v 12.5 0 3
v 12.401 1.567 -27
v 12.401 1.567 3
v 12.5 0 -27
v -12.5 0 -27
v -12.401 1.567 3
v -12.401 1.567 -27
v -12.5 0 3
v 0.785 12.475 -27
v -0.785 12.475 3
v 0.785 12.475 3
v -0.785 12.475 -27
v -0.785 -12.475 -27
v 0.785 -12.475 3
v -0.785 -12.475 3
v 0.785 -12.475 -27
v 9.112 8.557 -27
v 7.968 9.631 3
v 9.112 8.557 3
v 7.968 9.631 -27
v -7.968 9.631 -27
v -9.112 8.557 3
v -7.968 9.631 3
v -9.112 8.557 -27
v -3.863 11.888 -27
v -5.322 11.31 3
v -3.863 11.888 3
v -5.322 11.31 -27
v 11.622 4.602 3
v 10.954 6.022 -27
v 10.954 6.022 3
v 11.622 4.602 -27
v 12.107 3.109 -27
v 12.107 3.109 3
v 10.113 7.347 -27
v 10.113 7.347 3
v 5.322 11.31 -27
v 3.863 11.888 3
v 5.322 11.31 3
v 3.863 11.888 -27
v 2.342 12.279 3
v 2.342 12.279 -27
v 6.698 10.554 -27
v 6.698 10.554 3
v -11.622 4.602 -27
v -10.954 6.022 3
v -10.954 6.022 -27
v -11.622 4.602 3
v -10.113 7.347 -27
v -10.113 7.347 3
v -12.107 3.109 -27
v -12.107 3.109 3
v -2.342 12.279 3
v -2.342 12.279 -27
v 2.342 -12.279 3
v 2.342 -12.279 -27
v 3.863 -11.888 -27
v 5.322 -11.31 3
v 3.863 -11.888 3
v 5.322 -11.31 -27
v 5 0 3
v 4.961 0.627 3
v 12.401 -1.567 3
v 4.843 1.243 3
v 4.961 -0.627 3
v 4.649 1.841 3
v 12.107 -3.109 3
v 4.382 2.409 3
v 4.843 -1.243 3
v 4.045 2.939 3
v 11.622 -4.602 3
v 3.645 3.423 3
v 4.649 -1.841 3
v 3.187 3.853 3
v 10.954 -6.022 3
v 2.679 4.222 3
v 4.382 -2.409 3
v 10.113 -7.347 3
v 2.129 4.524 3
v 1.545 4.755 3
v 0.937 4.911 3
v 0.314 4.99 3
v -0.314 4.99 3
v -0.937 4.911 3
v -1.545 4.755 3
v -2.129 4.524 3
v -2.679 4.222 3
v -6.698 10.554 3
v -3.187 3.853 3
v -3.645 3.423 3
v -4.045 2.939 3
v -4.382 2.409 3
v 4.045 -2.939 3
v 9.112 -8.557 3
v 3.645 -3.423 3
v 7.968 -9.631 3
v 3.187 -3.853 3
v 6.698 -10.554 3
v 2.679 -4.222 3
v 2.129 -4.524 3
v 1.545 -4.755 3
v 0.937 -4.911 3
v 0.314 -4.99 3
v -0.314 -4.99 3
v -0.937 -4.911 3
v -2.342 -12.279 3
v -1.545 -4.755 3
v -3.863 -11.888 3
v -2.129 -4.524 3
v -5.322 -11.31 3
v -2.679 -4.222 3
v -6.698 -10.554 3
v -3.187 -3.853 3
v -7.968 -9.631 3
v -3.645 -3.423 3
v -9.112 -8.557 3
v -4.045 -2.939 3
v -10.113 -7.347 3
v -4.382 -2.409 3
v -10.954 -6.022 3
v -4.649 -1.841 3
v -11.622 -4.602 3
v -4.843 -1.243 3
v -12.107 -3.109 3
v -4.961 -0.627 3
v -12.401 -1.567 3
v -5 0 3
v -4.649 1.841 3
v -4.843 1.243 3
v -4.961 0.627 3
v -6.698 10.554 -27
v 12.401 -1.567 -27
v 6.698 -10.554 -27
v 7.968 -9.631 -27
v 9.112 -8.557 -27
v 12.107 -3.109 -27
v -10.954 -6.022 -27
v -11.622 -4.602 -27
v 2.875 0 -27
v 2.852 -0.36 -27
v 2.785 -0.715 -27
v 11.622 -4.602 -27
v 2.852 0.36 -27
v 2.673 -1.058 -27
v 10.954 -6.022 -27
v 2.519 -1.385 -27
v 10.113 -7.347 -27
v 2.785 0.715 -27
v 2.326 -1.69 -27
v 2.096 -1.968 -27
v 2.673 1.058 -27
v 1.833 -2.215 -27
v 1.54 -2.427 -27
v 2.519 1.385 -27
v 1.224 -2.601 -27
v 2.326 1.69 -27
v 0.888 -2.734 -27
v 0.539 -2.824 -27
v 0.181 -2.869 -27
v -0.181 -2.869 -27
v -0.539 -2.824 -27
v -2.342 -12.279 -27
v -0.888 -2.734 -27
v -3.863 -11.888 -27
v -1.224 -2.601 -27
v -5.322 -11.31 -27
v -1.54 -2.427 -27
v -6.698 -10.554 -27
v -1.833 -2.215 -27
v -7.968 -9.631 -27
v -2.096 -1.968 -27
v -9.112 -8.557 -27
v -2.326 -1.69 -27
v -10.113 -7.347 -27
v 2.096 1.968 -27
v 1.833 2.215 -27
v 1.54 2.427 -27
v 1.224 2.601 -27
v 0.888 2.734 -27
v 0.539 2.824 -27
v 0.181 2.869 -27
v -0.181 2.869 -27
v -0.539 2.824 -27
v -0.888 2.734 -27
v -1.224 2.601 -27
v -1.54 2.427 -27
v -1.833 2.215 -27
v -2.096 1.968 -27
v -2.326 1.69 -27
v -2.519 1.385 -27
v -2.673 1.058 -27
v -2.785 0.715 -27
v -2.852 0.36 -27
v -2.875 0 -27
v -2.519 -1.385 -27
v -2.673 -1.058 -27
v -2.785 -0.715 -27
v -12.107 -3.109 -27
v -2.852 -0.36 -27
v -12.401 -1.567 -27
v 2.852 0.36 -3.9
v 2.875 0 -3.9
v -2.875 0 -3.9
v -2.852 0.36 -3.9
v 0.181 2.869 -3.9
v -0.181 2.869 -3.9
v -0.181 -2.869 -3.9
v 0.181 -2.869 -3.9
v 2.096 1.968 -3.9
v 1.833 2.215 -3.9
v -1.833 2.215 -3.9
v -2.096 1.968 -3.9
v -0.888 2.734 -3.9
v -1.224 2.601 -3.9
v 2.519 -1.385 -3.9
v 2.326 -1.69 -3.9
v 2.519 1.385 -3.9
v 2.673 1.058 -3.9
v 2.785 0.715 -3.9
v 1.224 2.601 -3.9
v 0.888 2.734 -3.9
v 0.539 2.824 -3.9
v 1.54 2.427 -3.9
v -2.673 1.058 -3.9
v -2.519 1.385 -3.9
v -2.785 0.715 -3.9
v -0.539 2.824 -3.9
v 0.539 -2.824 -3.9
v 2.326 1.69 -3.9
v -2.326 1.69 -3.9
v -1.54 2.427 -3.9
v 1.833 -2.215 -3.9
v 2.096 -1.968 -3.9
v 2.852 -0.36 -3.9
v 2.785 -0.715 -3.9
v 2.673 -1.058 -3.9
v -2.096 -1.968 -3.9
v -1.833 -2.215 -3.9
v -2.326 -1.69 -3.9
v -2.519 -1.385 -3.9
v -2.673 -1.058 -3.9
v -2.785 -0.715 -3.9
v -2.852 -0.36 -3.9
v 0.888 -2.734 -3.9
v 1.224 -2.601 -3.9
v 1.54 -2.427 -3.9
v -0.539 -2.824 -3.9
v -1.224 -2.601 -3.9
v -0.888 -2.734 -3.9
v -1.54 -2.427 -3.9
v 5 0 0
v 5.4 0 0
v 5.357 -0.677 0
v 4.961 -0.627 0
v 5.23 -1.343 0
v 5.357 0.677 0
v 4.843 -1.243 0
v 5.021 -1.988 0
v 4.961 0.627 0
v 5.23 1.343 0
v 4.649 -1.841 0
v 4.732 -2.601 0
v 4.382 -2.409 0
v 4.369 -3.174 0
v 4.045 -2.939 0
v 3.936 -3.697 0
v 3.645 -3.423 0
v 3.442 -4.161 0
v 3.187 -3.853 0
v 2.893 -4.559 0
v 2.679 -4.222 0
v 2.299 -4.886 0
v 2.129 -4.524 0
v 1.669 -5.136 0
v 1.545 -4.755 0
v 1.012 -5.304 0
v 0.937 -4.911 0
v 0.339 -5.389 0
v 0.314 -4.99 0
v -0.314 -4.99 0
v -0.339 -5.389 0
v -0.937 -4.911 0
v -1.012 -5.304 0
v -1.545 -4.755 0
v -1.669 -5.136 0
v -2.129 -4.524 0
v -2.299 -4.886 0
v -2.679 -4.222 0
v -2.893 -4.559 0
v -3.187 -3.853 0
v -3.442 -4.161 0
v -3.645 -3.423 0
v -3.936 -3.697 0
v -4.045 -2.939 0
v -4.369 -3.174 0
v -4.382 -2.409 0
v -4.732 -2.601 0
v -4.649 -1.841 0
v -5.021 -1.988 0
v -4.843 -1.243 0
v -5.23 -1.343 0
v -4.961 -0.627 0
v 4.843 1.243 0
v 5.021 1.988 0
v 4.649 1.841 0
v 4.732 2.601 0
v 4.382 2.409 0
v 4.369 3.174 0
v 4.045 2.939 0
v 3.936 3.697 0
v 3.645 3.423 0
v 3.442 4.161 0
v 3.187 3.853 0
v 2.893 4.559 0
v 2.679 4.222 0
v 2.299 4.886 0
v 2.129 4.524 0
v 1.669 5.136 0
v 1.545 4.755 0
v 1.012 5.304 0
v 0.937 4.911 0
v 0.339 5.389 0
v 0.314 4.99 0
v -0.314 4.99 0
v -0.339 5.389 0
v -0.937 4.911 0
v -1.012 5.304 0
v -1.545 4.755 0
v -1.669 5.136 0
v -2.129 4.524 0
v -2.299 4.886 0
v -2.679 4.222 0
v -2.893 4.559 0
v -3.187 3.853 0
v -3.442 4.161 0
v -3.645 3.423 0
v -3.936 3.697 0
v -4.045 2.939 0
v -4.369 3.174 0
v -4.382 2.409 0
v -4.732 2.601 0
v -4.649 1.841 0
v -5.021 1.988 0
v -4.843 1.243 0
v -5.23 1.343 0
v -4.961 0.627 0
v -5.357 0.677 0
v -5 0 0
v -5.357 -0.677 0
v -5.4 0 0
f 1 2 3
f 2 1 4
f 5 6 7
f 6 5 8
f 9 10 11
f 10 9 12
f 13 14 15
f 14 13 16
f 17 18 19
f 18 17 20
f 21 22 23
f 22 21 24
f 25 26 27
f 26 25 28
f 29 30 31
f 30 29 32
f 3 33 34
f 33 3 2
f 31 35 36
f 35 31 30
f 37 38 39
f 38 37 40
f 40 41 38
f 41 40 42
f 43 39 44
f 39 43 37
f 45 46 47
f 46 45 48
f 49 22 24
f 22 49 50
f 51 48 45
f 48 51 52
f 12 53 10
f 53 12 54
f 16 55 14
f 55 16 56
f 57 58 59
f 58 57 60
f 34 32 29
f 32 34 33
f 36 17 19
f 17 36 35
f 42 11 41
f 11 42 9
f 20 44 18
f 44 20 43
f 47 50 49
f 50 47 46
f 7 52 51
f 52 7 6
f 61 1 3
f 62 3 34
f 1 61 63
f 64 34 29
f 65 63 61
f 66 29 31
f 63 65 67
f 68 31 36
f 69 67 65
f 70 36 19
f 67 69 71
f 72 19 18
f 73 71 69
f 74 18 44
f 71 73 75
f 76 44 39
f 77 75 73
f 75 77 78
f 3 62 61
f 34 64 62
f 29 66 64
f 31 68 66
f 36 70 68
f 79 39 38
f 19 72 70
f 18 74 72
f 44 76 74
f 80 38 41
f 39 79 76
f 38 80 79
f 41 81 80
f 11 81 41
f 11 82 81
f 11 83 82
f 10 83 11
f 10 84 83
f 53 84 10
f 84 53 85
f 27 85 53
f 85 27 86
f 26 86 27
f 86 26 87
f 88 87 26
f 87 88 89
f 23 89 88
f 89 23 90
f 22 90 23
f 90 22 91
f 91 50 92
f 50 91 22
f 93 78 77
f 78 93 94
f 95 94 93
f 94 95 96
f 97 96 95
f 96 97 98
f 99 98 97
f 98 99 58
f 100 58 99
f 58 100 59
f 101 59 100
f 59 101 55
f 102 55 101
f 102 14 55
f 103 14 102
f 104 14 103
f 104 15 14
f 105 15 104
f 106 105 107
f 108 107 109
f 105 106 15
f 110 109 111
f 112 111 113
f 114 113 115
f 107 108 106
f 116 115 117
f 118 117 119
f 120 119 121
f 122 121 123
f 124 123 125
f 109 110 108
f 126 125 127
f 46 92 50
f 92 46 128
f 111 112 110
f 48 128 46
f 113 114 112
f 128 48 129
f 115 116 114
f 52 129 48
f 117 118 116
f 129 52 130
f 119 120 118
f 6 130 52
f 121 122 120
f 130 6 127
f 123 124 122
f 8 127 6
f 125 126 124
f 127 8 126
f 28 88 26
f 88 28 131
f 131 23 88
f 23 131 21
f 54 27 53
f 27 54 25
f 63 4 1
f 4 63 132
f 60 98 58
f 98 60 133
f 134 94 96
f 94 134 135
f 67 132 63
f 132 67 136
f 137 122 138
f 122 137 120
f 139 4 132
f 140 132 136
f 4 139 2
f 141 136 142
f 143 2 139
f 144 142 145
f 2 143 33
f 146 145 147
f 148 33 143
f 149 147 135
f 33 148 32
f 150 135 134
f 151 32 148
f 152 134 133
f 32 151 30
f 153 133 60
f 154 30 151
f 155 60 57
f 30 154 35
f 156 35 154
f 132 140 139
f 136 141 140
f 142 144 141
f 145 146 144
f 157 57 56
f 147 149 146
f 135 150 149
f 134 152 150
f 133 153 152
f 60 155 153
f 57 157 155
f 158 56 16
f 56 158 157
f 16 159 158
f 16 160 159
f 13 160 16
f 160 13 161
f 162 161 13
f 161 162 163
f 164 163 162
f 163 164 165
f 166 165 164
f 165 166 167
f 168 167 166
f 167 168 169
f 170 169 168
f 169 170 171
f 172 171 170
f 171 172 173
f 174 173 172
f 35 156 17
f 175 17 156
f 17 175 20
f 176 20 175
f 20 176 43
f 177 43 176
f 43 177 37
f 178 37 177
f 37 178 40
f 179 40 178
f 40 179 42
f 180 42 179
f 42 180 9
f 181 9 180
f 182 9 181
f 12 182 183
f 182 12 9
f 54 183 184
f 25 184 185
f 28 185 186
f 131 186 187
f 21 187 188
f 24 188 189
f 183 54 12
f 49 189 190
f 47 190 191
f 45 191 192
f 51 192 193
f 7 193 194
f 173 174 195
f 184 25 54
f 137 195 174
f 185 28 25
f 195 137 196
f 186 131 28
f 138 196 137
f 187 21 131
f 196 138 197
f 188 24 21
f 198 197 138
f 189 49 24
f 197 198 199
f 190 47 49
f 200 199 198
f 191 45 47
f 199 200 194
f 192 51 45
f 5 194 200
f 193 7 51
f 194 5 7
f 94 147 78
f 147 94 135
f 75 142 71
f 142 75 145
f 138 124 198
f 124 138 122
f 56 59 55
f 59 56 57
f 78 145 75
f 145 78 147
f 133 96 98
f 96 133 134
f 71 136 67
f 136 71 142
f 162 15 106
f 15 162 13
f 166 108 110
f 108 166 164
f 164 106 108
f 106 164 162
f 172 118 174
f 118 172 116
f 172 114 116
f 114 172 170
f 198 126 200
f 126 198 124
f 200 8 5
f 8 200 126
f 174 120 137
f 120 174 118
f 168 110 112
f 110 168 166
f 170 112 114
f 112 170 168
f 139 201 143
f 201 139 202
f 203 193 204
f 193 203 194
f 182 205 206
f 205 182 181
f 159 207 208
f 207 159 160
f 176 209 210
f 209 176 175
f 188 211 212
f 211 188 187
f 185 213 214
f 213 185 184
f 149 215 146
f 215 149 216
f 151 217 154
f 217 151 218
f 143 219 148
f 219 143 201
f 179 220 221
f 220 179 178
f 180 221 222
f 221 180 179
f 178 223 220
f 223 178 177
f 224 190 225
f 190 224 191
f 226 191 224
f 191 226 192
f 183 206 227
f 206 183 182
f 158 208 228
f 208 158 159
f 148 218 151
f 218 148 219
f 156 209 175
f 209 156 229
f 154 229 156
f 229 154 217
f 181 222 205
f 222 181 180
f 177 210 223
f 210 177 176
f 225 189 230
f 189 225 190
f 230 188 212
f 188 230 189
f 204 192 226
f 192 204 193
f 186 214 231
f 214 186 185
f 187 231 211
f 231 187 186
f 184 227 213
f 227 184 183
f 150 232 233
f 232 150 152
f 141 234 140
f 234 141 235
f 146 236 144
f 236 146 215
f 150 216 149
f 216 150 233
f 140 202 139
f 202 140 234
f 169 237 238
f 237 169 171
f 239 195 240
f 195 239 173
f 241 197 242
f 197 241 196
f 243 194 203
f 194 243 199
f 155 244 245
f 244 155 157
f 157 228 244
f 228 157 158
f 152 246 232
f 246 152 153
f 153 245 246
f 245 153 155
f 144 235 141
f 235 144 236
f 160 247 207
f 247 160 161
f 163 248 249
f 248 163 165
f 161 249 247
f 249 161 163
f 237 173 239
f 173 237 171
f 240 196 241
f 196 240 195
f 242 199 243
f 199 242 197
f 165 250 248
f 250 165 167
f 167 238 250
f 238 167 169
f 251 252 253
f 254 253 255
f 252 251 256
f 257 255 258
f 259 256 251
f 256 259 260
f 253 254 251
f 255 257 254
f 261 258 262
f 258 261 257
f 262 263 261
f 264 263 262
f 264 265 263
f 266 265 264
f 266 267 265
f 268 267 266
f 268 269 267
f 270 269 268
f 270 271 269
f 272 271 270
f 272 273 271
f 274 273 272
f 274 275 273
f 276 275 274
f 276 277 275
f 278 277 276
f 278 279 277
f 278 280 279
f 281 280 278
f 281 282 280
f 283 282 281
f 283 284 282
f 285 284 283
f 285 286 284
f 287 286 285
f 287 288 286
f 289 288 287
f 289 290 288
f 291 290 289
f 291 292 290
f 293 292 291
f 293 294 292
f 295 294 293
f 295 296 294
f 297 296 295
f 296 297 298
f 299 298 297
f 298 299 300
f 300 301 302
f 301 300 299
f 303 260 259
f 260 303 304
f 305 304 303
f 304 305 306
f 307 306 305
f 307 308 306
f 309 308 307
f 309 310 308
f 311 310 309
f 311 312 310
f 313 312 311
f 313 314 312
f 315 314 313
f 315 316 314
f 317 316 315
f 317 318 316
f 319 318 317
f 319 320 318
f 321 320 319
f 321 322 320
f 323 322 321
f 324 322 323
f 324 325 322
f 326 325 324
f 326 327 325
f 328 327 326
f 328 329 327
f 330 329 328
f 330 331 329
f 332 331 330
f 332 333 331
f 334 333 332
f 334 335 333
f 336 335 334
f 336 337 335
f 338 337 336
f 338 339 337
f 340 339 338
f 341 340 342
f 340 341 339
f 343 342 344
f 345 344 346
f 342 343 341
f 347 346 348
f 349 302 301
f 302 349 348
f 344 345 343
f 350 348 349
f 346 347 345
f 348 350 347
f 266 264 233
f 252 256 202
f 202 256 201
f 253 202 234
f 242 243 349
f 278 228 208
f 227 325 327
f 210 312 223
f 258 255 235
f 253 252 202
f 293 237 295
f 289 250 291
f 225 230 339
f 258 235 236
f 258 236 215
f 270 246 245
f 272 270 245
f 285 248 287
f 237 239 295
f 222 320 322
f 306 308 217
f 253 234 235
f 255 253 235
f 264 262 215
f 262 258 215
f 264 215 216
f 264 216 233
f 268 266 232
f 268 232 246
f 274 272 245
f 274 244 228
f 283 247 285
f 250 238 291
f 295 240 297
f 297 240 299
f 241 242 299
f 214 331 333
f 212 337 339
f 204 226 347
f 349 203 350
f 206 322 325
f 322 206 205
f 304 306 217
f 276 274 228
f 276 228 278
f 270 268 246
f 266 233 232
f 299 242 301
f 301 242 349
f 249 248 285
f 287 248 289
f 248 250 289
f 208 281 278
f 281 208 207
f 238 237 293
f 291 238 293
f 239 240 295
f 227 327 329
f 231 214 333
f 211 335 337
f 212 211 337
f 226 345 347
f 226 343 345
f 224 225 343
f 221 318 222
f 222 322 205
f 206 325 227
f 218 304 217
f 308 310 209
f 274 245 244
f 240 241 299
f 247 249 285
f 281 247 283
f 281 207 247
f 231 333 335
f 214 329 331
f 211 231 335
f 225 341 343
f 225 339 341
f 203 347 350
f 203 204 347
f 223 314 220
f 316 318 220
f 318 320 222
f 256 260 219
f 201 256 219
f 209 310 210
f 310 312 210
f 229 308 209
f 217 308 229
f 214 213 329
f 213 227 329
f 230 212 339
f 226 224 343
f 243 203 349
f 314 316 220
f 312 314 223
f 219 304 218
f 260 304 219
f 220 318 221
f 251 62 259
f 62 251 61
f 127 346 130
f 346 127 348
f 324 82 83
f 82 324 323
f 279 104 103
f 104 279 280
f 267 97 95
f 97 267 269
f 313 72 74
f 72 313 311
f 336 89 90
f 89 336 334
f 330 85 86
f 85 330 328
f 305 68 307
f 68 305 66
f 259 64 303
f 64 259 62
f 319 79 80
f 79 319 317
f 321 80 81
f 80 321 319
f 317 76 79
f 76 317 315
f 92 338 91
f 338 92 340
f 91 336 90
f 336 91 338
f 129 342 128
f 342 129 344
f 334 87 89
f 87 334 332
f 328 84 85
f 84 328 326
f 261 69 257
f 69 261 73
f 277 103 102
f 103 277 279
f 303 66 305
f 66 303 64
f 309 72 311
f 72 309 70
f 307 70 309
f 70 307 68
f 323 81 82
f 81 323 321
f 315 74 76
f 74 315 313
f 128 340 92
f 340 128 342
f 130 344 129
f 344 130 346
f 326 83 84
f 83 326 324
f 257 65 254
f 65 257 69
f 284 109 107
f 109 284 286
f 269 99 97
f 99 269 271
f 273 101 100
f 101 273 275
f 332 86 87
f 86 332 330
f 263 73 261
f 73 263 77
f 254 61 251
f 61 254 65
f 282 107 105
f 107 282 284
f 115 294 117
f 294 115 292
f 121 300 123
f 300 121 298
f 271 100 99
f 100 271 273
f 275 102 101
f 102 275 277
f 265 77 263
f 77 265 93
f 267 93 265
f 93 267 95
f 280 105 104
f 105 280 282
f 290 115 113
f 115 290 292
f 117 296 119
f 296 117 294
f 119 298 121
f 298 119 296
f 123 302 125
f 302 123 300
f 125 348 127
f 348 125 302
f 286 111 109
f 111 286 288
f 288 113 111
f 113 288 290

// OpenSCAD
$fn = 50;

difference() {
	union() {
		translate(v = [0, 0, -27.0]) {
			cylinder(h = 30, r = 12.5);
		}
		#translate(v = [0, 0, -30.0]) {
			cylinder(h = 30, r = 2.875);
		}
	}
	union() {
		translate(v = [0, 0, 0]) {
			rotate(a = [0, 0, 0]) {
				difference() {
					union() {
						translate(v = [0, 0, -30.0]) {
							cylinder(h = 30, r = 2.6);
						}
						translate(v = [0, 0, -3.9]) {
							cylinder(h = 3.9, r1 = 2.875, r2 = 5.4);
						}
						translate(v = [0, 0, -30.0]) {
							cylinder(h = 30, r = 2.875);
						}
						translate(v = [0, 0, -30.0]) {
							cylinder(h = 30, r = 2.6);
						}
					}
					union();
				}
			}
		}
		#cylinder(h = 3, r = 5.0);
	}
}
